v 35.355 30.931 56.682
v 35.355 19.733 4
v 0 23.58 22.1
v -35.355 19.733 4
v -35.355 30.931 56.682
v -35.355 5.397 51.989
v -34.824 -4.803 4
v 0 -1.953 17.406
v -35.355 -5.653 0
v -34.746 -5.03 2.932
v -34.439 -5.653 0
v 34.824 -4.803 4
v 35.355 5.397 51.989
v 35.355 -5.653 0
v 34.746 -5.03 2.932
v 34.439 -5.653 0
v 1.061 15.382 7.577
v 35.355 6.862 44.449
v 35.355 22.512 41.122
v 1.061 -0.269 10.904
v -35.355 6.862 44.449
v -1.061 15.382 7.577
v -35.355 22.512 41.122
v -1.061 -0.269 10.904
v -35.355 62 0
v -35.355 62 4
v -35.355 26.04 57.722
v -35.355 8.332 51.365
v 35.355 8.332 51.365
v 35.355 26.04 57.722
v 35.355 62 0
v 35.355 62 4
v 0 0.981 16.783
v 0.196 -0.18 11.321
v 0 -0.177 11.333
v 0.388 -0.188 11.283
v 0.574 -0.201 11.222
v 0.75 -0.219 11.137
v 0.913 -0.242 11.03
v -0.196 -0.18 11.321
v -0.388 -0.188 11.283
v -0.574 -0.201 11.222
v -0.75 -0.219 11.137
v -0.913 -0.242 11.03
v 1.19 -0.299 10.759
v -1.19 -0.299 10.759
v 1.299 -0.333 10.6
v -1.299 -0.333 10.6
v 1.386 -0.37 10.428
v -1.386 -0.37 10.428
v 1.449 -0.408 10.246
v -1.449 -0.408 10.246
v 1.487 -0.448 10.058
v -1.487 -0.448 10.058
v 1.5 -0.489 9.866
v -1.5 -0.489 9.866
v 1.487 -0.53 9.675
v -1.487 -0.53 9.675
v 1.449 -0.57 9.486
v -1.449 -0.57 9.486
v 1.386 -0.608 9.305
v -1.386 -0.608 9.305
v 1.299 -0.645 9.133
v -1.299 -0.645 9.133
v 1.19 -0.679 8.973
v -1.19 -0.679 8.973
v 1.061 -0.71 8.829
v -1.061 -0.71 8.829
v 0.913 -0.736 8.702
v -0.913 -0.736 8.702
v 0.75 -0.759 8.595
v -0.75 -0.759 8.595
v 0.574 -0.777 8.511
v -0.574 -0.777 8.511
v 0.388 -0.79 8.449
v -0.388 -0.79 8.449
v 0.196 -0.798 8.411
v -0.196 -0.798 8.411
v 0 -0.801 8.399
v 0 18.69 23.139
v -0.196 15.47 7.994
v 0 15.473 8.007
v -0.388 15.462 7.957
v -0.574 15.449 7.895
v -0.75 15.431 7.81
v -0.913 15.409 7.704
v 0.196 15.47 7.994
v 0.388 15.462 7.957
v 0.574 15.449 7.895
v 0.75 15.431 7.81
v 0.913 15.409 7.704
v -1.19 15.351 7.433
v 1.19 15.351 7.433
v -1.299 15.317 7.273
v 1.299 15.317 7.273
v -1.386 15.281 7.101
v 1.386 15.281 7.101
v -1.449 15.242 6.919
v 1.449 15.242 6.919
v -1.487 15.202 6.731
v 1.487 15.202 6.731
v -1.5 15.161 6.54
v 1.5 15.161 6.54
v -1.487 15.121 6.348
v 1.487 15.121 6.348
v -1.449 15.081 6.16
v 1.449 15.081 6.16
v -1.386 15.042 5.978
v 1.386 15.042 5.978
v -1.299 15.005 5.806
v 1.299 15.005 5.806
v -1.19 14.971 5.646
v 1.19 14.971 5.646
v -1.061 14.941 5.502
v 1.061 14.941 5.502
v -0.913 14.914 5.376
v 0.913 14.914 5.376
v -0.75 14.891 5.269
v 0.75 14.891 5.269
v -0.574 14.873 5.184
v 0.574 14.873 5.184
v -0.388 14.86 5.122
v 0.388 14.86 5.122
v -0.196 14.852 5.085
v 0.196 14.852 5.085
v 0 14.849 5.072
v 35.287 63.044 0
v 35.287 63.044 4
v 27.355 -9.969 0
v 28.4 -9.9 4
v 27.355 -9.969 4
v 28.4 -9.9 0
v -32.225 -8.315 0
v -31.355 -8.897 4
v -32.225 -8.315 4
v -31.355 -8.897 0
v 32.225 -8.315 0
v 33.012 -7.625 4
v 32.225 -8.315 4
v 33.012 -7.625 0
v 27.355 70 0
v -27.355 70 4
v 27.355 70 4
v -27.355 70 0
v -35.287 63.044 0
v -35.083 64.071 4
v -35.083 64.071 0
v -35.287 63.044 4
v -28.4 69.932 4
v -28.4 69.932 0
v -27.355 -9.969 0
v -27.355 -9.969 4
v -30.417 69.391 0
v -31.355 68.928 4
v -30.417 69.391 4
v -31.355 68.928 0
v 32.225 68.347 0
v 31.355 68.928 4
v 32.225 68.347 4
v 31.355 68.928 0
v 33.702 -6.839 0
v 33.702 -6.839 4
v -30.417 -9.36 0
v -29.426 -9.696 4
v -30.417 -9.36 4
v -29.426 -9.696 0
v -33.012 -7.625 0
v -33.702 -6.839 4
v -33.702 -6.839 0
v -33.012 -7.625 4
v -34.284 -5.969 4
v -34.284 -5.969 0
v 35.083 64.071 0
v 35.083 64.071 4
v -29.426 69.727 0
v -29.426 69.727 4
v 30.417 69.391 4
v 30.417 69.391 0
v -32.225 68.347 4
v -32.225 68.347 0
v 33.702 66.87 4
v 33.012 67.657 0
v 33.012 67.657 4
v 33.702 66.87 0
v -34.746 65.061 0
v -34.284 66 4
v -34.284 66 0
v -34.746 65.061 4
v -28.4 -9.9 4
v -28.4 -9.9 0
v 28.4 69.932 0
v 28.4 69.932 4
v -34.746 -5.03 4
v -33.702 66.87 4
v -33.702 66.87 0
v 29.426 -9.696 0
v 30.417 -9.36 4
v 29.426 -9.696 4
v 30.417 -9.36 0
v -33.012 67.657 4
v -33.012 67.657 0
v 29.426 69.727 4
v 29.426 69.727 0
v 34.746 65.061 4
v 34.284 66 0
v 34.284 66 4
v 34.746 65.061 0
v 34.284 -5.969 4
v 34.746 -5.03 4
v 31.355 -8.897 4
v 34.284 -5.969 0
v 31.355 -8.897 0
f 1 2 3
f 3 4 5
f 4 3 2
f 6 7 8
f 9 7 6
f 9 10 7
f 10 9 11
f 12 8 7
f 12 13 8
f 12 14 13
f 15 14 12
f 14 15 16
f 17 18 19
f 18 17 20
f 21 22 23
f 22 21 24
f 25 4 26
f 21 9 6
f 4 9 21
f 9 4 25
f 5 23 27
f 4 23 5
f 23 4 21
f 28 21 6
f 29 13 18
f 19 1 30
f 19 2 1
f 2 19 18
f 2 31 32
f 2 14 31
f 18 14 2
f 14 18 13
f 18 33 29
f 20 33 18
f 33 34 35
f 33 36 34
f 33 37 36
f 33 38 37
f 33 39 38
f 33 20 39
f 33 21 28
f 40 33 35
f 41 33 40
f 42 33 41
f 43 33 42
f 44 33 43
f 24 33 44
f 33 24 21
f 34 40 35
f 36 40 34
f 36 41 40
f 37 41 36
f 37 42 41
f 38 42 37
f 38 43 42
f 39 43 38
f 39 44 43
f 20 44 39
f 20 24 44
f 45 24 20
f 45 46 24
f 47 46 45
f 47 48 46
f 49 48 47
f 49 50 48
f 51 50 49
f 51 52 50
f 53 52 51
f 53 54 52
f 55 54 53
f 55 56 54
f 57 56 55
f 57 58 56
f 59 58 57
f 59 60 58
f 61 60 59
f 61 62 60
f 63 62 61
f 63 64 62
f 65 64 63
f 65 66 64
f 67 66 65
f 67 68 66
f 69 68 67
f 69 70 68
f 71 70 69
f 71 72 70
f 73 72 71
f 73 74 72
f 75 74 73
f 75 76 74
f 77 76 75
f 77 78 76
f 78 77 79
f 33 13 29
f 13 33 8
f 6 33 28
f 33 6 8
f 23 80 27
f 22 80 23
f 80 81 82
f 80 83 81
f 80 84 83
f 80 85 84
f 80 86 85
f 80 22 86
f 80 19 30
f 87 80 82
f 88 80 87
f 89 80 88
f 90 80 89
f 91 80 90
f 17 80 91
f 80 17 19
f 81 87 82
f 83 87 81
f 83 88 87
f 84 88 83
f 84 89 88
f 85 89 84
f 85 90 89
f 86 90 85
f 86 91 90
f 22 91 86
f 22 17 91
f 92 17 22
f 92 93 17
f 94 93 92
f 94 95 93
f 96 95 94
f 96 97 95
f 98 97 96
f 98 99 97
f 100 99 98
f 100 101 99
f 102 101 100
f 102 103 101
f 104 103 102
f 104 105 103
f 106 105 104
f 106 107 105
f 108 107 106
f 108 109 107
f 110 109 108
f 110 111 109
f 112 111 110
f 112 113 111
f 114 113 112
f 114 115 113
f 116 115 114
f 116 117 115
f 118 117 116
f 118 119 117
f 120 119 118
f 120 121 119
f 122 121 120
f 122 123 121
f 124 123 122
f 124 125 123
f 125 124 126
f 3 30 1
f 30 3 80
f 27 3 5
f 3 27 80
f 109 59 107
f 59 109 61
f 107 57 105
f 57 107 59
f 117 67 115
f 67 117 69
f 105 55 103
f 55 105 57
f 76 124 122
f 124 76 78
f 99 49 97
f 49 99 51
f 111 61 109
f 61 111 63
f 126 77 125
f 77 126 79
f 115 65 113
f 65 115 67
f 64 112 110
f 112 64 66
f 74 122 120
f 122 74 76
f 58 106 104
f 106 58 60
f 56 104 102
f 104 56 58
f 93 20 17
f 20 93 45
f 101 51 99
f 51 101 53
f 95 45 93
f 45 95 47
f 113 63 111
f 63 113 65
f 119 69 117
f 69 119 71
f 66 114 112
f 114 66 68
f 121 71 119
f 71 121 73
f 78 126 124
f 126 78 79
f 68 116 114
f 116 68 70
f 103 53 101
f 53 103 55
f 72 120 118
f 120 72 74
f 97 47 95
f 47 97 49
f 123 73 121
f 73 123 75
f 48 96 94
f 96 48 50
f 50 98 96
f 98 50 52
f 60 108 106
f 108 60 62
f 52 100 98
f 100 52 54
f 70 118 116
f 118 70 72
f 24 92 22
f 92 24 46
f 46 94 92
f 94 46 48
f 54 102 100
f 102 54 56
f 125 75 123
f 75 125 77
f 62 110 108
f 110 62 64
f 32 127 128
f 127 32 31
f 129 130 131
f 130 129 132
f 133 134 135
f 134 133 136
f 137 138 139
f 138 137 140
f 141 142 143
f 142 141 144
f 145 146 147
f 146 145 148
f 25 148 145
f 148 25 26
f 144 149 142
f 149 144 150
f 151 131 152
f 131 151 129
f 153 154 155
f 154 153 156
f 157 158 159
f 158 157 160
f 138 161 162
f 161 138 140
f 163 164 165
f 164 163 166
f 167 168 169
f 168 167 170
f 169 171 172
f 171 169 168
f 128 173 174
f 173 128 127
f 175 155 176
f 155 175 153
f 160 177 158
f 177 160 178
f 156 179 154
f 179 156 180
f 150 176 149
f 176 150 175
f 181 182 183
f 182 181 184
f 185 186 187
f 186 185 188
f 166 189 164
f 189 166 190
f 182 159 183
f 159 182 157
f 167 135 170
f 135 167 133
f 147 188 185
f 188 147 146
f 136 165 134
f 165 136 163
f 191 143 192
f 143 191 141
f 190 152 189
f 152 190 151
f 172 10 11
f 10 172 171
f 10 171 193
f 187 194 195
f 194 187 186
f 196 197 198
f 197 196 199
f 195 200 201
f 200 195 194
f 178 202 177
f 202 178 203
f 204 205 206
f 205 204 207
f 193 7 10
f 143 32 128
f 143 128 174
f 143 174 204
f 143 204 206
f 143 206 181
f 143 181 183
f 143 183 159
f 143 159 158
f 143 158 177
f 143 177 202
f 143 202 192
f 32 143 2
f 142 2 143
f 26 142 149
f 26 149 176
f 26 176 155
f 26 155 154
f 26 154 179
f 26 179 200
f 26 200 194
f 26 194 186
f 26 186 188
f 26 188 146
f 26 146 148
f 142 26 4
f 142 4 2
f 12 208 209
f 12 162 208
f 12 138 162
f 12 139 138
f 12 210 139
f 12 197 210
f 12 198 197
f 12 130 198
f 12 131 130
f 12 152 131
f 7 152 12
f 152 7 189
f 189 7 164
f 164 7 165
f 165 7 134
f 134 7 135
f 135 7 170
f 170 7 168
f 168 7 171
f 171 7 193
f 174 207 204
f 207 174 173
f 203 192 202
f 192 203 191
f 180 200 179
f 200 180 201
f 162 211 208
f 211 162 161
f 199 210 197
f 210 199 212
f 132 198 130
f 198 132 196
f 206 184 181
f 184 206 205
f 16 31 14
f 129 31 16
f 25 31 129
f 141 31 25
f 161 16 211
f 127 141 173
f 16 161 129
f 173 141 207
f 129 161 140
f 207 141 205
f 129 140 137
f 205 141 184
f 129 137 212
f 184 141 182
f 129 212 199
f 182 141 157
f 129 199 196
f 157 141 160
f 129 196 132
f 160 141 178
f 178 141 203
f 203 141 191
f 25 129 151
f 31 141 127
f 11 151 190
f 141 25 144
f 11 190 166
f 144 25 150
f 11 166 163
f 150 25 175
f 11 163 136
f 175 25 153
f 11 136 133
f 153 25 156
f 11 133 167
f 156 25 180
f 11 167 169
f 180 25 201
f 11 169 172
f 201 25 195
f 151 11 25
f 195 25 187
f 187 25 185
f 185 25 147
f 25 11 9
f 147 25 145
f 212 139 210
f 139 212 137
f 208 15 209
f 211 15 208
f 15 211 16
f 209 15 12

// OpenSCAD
// =========================================================================
// DIAMOND MOSAIC DISPLAY STAND
// =========================================================================
// Holds a square, framed mosaic on one corner so it reads as a diamond.
// The bottom corner drops into a V-shaped cradle that leans the mosaic
// back a few degrees, and a base plate reaches out behind it so the
// leaning weight can't tip it over.
//
// Prints in one piece, base down, exactly as exported. No supports.
// =========================================================================

/* [Mosaic] */
// Side length of the square mosaic (mm)
mosaic_size = 150; // [50:1:300]

// Total thickness of the mosaic, tiles plus wood frame (mm)
mosaic_thickness = 15; // [3:0.5:40]

// Width of the wood frame border on the back of the mosaic (mm).
// The back support stays inside this so it rests on wood, not the panel.
frame_border = 15; // [5:0.5:40]

/* [Stand Shape] */
// How far the mosaic leans back from vertical (degrees).
// More tilt is more stable but shows the mosaic at more of an angle.
tilt_angle = 12; // [0:1:25]

// Length of each cradle arm, measured along the mosaic's edge (mm)
arm_length = 50; // [20:1:120]

// Height of the front lip, measured square to the mosaic's edge (mm).
// Keep it small: it covers this much of the mosaic's front face.
front_lip_height = 5; // [2:0.5:20]

// Height of the back support, measured square to the mosaic's edge (mm).
// Should be no more than frame_border so it only touches the wood.
back_support_height = 12; // [4:0.5:40]

// Thickness of the front lip (mm)
front_lip_thickness = 3; // [1.5:0.1:8]

// Thickness of the back support (mm)
back_support_thickness = 5; // [2:0.1:12]

/* [Base] */
// How far the base plate reaches behind the bottom corner (mm).
// Must be well past the mosaic's centre of gravity; an assert checks it.
base_depth_behind = 70; // [30:1:150]

// Thickness of the base plate (mm)
base_thickness = 4; // [2:0.5:10]

// Material under the lowest point of the V seat (mm)
seat_thickness = 4; // [2:0.5:10]

// Corner rounding of the base plate outline (mm)
base_corner_radius = 8; // [0:0.5:20]

/* [Fit] */
// Extra room in the slot beyond the mosaic's thickness (mm).
// Raise it if the mosaic is a tight fit; lower it if it wobbles.
slot_clearance = 1.0; // [0.2:0.1:3]

// Radius of the groove along the bottom of the V. A printed V can't be
// perfectly sharp, so this keeps the mosaic's corner from riding up on it.
corner_relief_radius = 1.5; // [0:0.1:4]

/* [Advanced] */
// Rendering resolution (number of fragments for round shapes)
$fn = 48; // [20:4:120]

/* [Display Mode] */
// Which part to render?
// - "print_layout": The stand alone, base on the bed (recommended for exporting STL)
// - "assembled": The stand with a stand-in mosaic, to check the fit
part = "print_layout"; // [print_layout, assembled]


// =========================================================================
// INTERNAL DERIVED CALCULATIONS
// =========================================================================
// "Mosaic space" is the frame the cradle is drawn in, before tilting:
//   x runs across the mosaic, y runs through its thickness (front face
//   at y = 0, viewer on the -y side), z runs up the diamond. The bottom
//   corner of the mosaic sits at the origin.

// Half the width of the cradle. The arms run at 45 degrees, so an arm of
// length L along the edge spans L / sqrt(2) sideways and upward.
arm_reach = arm_length / sqrt(2);

// Heights measured square to an edge become vertical rises in mosaic
// space by dividing by cos(45).
front_lip_rise = front_lip_height / cos(45);
back_support_rise = back_support_height / cos(45);

// Slot through the thickness, centred on the mosaic
slot_front_y = -slot_clearance / 2;
slot_back_y = mosaic_thickness + slot_clearance / 2;

// Front and back faces of the whole cradle
cradle_front_y = slot_front_y - front_lip_thickness;
cradle_back_y = slot_back_y + back_support_thickness;

// Tilting back lowers the back of the seat by depth * sin(tilt).
// Lift the cradle so even that lowest point keeps seat_thickness under it.
cradle_lift = seat_thickness + corner_relief_radius
    + cradle_back_y * sin(tilt_angle);

// How far the cradle profile reaches downward in mosaic space. Anything
// below the bed is trimmed off, so this only has to be deep enough.
cradle_depth_below = cradle_lift / cos(tilt_angle) + cradle_back_y + 1;

// Mosaic's centre of gravity, horizontally behind the bottom corner.
// It sits half a diagonal up the mosaic and half its thickness in.
mosaic_diagonal = mosaic_size * sqrt(2);
centre_of_gravity_y = (mosaic_thickness / 2) * cos(tilt_angle)
    + (mosaic_diagonal / 2) * sin(tilt_angle);

// Keep the base this much farther back than the centre of gravity, so a
// light bump from the front doesn't push it over the back edge.
stability_margin = 15;

// Sanity checks for impossible or unstable parameter combinations
assert(back_support_height <= frame_border,
    "back_support_height is taller than frame_border, so it would press on the recessed back panel instead of the wood frame.");
assert(arm_length < mosaic_size,
    "arm_length must be shorter than the mosaic's edge.");
assert(base_depth_behind >= centre_of_gravity_y + stability_margin,
    str("base_depth_behind is too short to keep the mosaic from tipping backwards. Use at least ",
        ceil(centre_of_gravity_y + stability_margin), " mm."));
assert(base_corner_radius < arm_reach,
    "base_corner_radius is too large for the base plate.");


// =========================================================================
// MAIN ENTRY POINT
// =========================================================================

if (part == "print_layout") {
    stand();
}
else if (part == "assembled") {
    stand();
    // Drawn as a solid (not with %) so it shows up in PNG previews, which
    // render with CGAL and skip background parts.
    color("SteelBlue")
    place_tilted()
    mosaic_stand_in();
}


// =========================================================================
// COMPONENT MODULES
// =========================================================================

// --- WHOLE STAND ---
// Tilted cradle plus base plate, trimmed flat at the bed (z = 0).
module stand() {
    // intersection() keeps only what's inside both shapes; here it slices
    // off everything below the bed so the bottom is perfectly flat.
    intersection() {
        union() {
            place_tilted() cradle();
            base_plate();
        }
        bed_slab();
    }
}

// --- TILT AND LIFT ---
// Moves anything drawn in mosaic space into its displayed position.
// Rotating about x by -tilt_angle tips the top of the mosaic back (+y).
module place_tilted() {
    translate([0, 0, cradle_lift])
    rotate([-tilt_angle, 0, 0])
    children();
}

// --- CRADLE (mosaic space) ---
// A V-shaped seat with a short lip in front and a taller support behind,
// minus the slot the mosaic drops into and a relief groove at the V.
module cradle() {
    difference() {
        union() {
            // Seat under the mosaic, across the full depth
            translate([0, cradle_back_y, 0])
            cradle_slice(rise = 0, thickness = cradle_back_y - cradle_front_y);

            // Front lip
            translate([0, slot_front_y, 0])
            cradle_slice(rise = front_lip_rise, thickness = front_lip_thickness);

            // Back support
            translate([0, cradle_back_y, 0])
            cradle_slice(rise = back_support_rise, thickness = back_support_thickness);
        }
        corner_relief();
    }
}

// --- ONE SLICE OF THE CRADLE (mosaic space) ---
// Extrudes cradle_profile() through the thickness, ending at y = 0.
// linear_extrude() grows along +z, so rotate([90, 0, 0]) turns that
// into growing along -y; translate the result to place it.
module cradle_slice(rise, thickness) {
    rotate([90, 0, 0])
    linear_extrude(height = thickness)
    cradle_profile(rise);
}

// --- CRADLE PROFILE (2D) ---
// A block with a 90-degree V cut into its top. The V's sides follow the
// mosaic's two bottom edges; `rise` raises the V to make a lip.
module cradle_profile(rise) {
    polygon([
        [-arm_reach, arm_reach + rise],
        [0, rise],
        [arm_reach, arm_reach + rise],
        [arm_reach, -cradle_depth_below],
        [-arm_reach, -cradle_depth_below]
    ]);
}

// --- CORNER RELIEF (mosaic space) ---
// A rod along the bottom of the V, only as long as the slot so it doesn't
// tunnel through the lip or the back support. rotate([-90, 0, 0]) turns
// the cylinder from pointing up (+z) to pointing back (+y).
module corner_relief() {
    if (corner_relief_radius > 0) {
        translate([0, slot_front_y, 0])
        rotate([-90, 0, 0])
        cylinder(r = corner_relief_radius, h = slot_back_y - slot_front_y);
    }
}

// --- BASE PLATE ---
// The cradle's footprint stretched back to base_depth_behind, with
// rounded corners. projection() flattens a 3D shape to its 2D shadow on
// the bed; hull() wraps that and the back rectangle in one outline.
// offset(delta = -r) then offset(r = +r) rounds the convex corners
// without changing the overall size.
module base_plate() {
    linear_extrude(height = base_thickness)
    offset(r = base_corner_radius)
    offset(delta = -base_corner_radius)
    hull() {
        projection() place_tilted() cradle();
        translate([-arm_reach, 0])
        square([arm_reach * 2, base_depth_behind]);
    }
}

// --- BED SLAB ---
// A big block sitting on z = 0, used to trim the stand flat.
module bed_slab() {
    slab_size = (mosaic_size + base_depth_behind) * 4;
    translate([-slab_size / 2, -slab_size / 2, 0])
    cube(slab_size);
}

// --- MOSAIC STAND-IN (mosaic space) ---
// The square mosaic turned 45 degrees onto its corner, for the assembled view.
module mosaic_stand_in() {
    translate([0, mosaic_thickness, 0])
    rotate([90, 0, 0])
    linear_extrude(height = mosaic_thickness)
    rotate(45)
    square(mosaic_size);
}
